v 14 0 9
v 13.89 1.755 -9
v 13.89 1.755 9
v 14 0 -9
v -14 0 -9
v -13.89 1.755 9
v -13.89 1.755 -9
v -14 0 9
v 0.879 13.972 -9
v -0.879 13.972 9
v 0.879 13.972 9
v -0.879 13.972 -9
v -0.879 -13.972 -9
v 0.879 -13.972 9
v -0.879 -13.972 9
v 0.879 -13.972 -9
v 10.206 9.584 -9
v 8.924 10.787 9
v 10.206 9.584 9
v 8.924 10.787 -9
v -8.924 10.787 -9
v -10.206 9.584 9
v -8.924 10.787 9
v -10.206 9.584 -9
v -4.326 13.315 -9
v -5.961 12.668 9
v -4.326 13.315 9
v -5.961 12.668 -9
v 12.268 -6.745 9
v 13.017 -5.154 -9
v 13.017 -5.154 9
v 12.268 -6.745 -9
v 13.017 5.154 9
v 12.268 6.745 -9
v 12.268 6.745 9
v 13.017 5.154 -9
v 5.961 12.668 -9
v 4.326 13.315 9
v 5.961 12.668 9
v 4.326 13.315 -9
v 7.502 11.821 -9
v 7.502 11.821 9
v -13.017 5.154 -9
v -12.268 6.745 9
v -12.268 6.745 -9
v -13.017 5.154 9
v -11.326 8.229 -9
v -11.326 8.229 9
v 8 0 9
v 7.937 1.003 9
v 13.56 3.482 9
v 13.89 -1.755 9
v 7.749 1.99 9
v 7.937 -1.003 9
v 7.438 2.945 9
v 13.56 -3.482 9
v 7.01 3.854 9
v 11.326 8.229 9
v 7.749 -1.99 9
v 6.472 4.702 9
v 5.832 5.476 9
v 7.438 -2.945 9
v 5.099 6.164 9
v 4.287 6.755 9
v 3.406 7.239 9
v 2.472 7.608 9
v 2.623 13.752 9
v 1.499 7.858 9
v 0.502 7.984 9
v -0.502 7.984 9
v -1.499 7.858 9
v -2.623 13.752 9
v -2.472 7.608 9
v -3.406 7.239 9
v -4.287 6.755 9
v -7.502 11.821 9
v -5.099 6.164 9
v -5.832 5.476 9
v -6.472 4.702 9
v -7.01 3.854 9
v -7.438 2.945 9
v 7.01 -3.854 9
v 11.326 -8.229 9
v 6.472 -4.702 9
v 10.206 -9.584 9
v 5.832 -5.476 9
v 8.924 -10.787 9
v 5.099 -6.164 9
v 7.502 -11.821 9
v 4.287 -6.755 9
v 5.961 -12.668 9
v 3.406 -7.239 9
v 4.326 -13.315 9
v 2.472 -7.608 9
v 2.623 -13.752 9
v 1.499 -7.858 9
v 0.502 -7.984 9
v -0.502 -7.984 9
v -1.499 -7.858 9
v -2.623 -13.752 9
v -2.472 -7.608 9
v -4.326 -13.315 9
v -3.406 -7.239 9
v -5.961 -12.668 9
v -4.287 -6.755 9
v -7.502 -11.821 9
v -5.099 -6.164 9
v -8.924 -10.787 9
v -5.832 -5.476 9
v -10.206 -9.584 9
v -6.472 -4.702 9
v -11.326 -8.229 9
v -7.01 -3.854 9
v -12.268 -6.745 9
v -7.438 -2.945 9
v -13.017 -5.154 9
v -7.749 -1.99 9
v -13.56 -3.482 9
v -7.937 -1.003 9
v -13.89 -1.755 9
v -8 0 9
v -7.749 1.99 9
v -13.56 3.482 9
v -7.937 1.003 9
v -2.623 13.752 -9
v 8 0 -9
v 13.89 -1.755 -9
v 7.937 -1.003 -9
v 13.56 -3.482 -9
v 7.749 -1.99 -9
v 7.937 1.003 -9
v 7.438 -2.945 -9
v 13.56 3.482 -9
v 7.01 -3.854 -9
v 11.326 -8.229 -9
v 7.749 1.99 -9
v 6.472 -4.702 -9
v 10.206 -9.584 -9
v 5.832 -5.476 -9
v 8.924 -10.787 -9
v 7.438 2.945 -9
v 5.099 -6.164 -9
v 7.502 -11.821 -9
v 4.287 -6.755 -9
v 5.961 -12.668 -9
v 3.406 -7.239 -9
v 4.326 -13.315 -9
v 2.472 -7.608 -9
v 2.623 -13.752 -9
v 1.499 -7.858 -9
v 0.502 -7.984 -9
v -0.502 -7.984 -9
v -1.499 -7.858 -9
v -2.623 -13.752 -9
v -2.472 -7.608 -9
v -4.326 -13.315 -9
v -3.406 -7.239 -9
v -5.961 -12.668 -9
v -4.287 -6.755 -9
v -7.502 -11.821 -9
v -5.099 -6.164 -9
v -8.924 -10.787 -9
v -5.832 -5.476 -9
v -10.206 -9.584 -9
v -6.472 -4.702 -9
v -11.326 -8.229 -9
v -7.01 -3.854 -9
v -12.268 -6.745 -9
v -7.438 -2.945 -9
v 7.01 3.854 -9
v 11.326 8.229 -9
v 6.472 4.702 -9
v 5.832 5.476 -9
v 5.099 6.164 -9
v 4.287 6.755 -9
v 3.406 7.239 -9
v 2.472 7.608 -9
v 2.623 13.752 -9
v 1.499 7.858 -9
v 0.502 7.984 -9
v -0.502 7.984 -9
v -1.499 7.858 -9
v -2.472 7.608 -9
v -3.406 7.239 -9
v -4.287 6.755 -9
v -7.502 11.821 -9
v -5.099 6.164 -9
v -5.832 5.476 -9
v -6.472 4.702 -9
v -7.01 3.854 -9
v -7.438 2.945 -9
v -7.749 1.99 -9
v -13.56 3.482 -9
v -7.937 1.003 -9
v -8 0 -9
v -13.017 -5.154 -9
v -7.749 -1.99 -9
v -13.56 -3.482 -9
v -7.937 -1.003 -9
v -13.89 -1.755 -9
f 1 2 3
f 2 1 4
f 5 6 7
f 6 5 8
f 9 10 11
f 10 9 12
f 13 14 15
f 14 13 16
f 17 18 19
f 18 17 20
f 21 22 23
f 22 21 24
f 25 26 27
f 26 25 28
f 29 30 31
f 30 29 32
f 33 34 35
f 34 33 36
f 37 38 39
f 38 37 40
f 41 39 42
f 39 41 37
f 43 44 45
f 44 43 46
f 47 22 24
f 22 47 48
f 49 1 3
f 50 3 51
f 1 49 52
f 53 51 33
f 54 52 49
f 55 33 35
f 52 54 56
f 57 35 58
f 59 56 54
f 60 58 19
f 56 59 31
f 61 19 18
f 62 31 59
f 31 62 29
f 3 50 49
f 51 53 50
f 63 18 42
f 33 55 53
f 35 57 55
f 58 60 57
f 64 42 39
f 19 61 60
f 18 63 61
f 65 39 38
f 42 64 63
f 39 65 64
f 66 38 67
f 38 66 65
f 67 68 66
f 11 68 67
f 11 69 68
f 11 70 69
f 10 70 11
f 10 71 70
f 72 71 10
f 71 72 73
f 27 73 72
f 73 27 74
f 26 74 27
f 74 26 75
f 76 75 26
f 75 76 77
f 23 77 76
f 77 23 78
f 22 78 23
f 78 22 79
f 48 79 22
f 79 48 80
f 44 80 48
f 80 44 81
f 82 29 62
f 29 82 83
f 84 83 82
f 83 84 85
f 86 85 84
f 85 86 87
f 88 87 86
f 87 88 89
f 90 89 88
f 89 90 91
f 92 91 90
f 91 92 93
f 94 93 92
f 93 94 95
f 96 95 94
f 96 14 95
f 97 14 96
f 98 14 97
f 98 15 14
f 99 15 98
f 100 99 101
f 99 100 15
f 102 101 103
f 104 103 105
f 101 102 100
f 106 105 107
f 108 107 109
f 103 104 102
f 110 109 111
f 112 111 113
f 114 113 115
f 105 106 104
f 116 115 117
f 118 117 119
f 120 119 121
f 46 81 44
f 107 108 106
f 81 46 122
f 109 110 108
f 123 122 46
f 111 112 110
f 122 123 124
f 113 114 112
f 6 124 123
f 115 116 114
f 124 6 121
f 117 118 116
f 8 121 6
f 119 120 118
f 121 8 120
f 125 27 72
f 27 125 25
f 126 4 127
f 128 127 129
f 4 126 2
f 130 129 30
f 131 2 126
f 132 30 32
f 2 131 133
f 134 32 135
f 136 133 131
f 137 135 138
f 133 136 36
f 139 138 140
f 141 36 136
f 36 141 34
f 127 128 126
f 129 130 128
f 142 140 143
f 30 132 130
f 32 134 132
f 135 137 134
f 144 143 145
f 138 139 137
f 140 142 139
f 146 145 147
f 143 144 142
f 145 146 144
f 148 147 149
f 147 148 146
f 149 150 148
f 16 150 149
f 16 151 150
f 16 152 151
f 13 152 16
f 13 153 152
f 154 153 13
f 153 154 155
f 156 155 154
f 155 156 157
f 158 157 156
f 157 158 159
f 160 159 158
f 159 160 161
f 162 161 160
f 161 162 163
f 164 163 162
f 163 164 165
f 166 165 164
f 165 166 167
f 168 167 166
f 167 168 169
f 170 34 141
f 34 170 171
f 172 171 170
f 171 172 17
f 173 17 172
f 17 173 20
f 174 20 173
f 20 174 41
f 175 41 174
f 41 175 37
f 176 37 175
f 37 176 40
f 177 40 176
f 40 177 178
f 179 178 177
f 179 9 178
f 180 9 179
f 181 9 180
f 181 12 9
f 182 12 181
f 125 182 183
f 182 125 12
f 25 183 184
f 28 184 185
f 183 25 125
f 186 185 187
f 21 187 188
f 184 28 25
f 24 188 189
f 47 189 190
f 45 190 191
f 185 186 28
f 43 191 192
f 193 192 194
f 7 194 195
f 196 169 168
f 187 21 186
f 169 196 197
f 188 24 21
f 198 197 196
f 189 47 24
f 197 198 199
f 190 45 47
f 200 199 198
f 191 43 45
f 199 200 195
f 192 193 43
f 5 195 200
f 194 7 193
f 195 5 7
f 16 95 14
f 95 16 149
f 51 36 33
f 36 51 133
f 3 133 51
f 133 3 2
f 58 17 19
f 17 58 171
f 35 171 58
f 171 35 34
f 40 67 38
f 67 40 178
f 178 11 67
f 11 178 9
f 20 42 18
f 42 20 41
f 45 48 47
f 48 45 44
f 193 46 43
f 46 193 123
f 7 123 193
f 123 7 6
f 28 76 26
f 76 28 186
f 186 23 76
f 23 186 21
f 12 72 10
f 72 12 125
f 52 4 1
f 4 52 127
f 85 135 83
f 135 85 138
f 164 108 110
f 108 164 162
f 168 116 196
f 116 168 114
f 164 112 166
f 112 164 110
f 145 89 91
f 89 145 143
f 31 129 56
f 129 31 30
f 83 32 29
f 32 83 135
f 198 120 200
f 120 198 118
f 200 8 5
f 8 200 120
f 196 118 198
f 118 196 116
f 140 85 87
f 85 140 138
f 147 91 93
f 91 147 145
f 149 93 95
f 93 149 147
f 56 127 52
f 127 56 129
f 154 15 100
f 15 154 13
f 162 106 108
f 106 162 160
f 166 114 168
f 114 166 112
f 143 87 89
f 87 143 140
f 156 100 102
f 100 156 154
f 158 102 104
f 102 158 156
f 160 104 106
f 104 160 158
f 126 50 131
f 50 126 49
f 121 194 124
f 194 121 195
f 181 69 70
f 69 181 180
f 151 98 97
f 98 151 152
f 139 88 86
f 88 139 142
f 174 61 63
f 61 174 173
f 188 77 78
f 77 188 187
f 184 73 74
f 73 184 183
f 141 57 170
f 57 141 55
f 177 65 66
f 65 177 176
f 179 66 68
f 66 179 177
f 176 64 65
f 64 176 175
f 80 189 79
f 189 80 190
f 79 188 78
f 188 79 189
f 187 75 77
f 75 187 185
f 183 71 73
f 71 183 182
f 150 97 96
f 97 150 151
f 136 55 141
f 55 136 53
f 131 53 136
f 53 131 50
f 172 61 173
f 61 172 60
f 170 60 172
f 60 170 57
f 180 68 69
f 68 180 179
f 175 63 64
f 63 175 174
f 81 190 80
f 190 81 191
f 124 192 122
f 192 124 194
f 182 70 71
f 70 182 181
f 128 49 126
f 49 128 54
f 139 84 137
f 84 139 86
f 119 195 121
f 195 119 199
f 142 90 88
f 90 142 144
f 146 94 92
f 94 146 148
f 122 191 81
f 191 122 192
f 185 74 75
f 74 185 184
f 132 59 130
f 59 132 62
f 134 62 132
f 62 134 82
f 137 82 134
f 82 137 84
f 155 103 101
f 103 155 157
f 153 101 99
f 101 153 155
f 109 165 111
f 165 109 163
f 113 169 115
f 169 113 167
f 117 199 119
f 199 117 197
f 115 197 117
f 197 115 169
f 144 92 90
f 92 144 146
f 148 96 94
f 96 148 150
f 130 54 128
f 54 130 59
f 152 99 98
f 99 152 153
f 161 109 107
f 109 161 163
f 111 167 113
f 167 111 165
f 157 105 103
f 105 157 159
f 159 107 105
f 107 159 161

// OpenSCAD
$fn = 50;


difference() {
	union() {
		translate(v = [0, 0, -9.0000000000]) {
			cylinder(h = 18, r = 14.0000000000);
		}
	}
	union() {
		translate(v = [0, 0, -100.0000000000]) {
			cylinder(h = 200, r = 8);
		}
	}
}
